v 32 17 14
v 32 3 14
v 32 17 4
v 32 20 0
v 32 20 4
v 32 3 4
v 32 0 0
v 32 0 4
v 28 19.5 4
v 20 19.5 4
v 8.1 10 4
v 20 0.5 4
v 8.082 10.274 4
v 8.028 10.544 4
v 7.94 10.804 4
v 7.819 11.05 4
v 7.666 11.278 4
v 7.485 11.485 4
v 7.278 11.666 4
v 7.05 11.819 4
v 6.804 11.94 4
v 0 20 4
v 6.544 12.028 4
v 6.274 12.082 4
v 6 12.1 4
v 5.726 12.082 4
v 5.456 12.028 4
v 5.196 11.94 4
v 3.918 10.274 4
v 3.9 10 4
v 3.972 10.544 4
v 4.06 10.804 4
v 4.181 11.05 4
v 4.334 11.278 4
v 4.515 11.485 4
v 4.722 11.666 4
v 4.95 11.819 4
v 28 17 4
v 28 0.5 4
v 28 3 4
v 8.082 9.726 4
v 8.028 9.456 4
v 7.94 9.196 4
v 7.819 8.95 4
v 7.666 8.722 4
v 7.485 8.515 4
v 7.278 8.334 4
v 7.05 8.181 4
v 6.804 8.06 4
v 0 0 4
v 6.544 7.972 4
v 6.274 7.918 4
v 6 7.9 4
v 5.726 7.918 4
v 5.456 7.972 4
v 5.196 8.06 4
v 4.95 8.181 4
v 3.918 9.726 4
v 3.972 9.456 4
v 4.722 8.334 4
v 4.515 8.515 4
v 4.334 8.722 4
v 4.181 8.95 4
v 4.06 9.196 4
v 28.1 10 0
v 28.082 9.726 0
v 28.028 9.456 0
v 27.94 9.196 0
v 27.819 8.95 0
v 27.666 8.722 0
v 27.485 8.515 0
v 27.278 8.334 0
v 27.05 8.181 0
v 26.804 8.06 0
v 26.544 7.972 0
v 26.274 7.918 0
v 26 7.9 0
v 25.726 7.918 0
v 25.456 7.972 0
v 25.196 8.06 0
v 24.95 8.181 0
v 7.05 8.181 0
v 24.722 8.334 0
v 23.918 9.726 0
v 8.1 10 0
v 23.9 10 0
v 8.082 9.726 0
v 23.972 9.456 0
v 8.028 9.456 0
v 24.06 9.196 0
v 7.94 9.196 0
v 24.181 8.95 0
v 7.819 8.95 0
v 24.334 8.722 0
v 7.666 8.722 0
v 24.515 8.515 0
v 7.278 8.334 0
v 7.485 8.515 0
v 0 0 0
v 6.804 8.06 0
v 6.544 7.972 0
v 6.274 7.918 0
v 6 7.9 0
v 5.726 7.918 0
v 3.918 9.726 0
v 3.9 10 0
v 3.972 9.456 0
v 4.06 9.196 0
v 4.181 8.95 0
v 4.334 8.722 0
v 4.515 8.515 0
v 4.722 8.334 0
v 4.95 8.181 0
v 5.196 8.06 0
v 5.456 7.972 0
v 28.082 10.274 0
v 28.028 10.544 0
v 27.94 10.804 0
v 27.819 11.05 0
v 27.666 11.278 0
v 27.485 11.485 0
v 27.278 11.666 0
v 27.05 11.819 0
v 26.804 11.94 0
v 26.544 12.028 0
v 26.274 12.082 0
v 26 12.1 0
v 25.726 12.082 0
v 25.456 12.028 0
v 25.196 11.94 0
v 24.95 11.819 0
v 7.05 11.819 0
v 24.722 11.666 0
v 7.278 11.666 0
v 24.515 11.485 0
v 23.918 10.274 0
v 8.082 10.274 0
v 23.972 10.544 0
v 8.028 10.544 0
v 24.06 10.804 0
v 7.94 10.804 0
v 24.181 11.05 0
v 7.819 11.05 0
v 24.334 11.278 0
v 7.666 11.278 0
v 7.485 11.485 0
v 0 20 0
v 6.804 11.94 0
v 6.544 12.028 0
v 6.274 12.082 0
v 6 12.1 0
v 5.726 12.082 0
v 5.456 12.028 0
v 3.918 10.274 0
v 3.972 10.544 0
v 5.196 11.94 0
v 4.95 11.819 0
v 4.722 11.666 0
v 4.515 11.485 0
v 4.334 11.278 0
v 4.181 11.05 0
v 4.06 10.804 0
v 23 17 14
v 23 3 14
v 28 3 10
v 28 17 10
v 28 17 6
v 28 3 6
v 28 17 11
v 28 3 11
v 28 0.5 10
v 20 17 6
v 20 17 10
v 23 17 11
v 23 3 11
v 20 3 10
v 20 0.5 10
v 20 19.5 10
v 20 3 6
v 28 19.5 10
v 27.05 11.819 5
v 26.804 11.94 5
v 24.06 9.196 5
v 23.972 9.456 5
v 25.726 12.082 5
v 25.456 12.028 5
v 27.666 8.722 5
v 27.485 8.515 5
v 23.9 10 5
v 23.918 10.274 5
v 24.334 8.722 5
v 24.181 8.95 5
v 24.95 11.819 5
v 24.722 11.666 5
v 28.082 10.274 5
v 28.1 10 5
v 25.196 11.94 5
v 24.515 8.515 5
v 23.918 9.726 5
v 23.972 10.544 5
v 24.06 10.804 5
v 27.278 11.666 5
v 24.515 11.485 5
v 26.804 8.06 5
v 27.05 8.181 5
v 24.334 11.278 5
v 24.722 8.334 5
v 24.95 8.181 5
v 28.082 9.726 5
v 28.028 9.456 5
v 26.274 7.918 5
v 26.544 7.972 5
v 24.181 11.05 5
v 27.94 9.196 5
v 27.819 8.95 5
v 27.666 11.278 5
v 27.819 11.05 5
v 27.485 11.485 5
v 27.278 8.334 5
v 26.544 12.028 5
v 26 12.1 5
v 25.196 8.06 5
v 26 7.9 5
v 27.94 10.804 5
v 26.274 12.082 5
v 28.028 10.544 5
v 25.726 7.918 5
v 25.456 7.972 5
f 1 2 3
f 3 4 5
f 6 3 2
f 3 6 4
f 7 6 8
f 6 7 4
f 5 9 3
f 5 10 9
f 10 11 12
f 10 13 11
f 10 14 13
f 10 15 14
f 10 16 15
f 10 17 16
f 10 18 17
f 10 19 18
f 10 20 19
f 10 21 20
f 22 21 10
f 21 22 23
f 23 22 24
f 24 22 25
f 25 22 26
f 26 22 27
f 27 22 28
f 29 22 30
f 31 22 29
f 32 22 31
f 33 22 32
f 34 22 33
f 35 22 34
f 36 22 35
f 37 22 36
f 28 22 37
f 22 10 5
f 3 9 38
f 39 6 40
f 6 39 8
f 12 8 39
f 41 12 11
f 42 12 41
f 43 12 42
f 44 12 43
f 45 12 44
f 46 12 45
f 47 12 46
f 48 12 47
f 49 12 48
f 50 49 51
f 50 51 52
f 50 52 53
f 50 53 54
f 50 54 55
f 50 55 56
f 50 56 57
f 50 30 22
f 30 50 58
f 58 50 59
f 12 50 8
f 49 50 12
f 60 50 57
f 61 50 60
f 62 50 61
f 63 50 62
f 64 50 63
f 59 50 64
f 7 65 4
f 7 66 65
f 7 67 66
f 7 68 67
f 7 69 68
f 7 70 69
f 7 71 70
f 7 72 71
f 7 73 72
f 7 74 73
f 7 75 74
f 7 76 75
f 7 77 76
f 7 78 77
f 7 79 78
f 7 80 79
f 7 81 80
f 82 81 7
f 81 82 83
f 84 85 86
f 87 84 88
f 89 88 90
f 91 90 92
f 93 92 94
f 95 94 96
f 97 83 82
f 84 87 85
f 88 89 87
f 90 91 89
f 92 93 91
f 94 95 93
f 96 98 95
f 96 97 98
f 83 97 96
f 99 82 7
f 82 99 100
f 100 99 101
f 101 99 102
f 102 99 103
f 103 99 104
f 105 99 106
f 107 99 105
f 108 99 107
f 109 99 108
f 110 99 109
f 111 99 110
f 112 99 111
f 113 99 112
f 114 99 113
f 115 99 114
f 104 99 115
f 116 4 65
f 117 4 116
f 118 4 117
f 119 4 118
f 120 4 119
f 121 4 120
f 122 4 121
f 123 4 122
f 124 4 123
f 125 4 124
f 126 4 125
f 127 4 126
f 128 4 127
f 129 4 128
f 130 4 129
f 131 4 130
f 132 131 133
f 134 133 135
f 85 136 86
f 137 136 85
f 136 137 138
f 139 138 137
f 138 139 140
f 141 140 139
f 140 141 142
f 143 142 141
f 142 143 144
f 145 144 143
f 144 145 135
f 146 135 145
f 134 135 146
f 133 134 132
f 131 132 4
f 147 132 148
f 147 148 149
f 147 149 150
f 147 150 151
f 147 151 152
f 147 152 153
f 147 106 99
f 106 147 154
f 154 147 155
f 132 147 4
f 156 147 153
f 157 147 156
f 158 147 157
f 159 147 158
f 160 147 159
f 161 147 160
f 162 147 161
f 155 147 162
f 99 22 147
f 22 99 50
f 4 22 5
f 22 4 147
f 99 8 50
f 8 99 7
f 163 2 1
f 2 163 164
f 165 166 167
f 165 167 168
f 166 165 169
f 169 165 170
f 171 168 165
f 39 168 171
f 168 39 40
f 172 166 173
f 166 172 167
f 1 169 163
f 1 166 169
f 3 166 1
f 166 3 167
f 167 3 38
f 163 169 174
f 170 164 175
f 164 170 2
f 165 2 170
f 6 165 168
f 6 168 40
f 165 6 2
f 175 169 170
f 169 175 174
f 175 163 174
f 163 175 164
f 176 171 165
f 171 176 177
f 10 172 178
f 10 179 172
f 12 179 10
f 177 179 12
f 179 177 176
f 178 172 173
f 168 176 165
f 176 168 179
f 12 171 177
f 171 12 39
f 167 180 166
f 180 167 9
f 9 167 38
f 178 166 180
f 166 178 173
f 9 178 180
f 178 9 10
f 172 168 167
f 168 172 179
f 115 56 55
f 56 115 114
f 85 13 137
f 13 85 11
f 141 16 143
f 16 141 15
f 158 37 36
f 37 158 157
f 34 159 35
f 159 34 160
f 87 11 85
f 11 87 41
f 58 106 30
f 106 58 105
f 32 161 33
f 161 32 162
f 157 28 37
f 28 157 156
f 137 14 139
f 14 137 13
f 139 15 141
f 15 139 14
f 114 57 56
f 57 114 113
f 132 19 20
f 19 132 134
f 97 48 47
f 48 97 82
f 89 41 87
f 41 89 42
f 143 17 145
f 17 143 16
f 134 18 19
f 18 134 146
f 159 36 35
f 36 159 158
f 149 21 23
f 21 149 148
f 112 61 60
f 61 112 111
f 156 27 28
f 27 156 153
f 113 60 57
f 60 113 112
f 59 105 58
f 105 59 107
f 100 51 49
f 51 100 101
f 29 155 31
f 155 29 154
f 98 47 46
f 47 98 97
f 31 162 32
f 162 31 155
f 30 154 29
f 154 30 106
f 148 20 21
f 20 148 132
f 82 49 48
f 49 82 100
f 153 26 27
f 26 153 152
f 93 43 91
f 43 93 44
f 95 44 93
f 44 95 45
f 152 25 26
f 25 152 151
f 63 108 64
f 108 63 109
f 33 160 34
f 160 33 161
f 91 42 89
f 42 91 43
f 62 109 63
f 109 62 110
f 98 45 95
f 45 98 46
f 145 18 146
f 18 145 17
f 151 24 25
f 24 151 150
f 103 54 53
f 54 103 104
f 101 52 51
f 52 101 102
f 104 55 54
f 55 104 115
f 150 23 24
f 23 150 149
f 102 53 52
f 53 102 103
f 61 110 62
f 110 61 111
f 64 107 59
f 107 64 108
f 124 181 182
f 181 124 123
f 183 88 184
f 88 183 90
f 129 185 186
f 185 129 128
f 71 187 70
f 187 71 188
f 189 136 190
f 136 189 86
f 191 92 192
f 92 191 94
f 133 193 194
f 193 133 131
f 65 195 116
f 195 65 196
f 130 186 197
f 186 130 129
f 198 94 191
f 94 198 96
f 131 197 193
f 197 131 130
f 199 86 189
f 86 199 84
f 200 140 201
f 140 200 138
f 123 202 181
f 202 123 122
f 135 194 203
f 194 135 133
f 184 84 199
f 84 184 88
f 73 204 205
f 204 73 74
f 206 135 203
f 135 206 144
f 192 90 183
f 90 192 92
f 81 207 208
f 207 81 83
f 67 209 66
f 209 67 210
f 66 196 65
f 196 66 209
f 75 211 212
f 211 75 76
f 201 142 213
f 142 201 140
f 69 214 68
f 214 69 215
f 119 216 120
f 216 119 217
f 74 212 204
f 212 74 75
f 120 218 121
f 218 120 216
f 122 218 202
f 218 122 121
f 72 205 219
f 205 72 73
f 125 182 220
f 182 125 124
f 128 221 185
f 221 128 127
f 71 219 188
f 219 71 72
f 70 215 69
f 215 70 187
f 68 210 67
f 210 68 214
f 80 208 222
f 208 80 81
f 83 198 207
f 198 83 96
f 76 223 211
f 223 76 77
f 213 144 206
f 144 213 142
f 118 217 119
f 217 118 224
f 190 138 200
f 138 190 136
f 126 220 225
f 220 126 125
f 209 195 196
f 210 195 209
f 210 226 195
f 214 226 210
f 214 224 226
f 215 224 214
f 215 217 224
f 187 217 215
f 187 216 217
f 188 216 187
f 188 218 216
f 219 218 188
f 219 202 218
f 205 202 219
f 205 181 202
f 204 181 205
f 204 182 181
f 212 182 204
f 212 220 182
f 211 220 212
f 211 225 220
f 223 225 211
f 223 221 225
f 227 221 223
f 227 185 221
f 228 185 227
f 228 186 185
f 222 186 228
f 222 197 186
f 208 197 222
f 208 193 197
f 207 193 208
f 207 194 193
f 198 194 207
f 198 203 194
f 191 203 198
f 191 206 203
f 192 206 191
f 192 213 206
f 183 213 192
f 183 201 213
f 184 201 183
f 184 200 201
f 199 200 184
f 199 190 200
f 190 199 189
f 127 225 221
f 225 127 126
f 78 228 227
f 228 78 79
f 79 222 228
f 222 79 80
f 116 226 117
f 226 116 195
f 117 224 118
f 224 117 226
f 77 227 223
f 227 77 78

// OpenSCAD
// Freezer Door Latch Clip - PETG
// Units mm, prints flat
base_L = 32;
base_W = 20;
base_T = 4;
wall_T = 4;
hook_W = 14;
hook_H = 10;
lip_over = 5;
lip_T = 3;
hole_D = 4.2;
hole_spacing = 20;
rib_T = 2.5;
rib_L = 8;
rib_H = 6;
$fn = 48;
// derived
top_Z = base_T + hook_H;
x_wall = base_L - wall_T;
y0 = (base_W - hook_W) / 2;
x_tip = x_wall - lip_over;
z_lip_bot = top_Z - lip_T;
difference() {
  union() {
    cube([base_L, base_W, base_T]);
    translate([x_wall, y0, 0]) cube([wall_T, hook_W, top_Z]);
    translate([x_tip, y0, z_lip_bot]) cube([wall_T + lip_over, hook_W, lip_T]);
    translate([x_wall - rib_L, y0 - rib_T, base_T]) cube([rib_L, rib_T, rib_H]);
    translate([x_wall - rib_L, y0 + hook_W, base_T]) cube([rib_L, rib_T, rib_H]);
    translate([x_wall - rib_L, y0, base_T]) cube([rib_L, hook_W, 2]);
  }
  translate([base_L/2 - hole_spacing/2, base_W/2, -1]) cylinder(d=hole_D, h=base_T+2);
  translate([base_L/2 + hole_spacing/2, base_W/2, -1]) cylinder(d=hole_D, h=base_T+2);
}
